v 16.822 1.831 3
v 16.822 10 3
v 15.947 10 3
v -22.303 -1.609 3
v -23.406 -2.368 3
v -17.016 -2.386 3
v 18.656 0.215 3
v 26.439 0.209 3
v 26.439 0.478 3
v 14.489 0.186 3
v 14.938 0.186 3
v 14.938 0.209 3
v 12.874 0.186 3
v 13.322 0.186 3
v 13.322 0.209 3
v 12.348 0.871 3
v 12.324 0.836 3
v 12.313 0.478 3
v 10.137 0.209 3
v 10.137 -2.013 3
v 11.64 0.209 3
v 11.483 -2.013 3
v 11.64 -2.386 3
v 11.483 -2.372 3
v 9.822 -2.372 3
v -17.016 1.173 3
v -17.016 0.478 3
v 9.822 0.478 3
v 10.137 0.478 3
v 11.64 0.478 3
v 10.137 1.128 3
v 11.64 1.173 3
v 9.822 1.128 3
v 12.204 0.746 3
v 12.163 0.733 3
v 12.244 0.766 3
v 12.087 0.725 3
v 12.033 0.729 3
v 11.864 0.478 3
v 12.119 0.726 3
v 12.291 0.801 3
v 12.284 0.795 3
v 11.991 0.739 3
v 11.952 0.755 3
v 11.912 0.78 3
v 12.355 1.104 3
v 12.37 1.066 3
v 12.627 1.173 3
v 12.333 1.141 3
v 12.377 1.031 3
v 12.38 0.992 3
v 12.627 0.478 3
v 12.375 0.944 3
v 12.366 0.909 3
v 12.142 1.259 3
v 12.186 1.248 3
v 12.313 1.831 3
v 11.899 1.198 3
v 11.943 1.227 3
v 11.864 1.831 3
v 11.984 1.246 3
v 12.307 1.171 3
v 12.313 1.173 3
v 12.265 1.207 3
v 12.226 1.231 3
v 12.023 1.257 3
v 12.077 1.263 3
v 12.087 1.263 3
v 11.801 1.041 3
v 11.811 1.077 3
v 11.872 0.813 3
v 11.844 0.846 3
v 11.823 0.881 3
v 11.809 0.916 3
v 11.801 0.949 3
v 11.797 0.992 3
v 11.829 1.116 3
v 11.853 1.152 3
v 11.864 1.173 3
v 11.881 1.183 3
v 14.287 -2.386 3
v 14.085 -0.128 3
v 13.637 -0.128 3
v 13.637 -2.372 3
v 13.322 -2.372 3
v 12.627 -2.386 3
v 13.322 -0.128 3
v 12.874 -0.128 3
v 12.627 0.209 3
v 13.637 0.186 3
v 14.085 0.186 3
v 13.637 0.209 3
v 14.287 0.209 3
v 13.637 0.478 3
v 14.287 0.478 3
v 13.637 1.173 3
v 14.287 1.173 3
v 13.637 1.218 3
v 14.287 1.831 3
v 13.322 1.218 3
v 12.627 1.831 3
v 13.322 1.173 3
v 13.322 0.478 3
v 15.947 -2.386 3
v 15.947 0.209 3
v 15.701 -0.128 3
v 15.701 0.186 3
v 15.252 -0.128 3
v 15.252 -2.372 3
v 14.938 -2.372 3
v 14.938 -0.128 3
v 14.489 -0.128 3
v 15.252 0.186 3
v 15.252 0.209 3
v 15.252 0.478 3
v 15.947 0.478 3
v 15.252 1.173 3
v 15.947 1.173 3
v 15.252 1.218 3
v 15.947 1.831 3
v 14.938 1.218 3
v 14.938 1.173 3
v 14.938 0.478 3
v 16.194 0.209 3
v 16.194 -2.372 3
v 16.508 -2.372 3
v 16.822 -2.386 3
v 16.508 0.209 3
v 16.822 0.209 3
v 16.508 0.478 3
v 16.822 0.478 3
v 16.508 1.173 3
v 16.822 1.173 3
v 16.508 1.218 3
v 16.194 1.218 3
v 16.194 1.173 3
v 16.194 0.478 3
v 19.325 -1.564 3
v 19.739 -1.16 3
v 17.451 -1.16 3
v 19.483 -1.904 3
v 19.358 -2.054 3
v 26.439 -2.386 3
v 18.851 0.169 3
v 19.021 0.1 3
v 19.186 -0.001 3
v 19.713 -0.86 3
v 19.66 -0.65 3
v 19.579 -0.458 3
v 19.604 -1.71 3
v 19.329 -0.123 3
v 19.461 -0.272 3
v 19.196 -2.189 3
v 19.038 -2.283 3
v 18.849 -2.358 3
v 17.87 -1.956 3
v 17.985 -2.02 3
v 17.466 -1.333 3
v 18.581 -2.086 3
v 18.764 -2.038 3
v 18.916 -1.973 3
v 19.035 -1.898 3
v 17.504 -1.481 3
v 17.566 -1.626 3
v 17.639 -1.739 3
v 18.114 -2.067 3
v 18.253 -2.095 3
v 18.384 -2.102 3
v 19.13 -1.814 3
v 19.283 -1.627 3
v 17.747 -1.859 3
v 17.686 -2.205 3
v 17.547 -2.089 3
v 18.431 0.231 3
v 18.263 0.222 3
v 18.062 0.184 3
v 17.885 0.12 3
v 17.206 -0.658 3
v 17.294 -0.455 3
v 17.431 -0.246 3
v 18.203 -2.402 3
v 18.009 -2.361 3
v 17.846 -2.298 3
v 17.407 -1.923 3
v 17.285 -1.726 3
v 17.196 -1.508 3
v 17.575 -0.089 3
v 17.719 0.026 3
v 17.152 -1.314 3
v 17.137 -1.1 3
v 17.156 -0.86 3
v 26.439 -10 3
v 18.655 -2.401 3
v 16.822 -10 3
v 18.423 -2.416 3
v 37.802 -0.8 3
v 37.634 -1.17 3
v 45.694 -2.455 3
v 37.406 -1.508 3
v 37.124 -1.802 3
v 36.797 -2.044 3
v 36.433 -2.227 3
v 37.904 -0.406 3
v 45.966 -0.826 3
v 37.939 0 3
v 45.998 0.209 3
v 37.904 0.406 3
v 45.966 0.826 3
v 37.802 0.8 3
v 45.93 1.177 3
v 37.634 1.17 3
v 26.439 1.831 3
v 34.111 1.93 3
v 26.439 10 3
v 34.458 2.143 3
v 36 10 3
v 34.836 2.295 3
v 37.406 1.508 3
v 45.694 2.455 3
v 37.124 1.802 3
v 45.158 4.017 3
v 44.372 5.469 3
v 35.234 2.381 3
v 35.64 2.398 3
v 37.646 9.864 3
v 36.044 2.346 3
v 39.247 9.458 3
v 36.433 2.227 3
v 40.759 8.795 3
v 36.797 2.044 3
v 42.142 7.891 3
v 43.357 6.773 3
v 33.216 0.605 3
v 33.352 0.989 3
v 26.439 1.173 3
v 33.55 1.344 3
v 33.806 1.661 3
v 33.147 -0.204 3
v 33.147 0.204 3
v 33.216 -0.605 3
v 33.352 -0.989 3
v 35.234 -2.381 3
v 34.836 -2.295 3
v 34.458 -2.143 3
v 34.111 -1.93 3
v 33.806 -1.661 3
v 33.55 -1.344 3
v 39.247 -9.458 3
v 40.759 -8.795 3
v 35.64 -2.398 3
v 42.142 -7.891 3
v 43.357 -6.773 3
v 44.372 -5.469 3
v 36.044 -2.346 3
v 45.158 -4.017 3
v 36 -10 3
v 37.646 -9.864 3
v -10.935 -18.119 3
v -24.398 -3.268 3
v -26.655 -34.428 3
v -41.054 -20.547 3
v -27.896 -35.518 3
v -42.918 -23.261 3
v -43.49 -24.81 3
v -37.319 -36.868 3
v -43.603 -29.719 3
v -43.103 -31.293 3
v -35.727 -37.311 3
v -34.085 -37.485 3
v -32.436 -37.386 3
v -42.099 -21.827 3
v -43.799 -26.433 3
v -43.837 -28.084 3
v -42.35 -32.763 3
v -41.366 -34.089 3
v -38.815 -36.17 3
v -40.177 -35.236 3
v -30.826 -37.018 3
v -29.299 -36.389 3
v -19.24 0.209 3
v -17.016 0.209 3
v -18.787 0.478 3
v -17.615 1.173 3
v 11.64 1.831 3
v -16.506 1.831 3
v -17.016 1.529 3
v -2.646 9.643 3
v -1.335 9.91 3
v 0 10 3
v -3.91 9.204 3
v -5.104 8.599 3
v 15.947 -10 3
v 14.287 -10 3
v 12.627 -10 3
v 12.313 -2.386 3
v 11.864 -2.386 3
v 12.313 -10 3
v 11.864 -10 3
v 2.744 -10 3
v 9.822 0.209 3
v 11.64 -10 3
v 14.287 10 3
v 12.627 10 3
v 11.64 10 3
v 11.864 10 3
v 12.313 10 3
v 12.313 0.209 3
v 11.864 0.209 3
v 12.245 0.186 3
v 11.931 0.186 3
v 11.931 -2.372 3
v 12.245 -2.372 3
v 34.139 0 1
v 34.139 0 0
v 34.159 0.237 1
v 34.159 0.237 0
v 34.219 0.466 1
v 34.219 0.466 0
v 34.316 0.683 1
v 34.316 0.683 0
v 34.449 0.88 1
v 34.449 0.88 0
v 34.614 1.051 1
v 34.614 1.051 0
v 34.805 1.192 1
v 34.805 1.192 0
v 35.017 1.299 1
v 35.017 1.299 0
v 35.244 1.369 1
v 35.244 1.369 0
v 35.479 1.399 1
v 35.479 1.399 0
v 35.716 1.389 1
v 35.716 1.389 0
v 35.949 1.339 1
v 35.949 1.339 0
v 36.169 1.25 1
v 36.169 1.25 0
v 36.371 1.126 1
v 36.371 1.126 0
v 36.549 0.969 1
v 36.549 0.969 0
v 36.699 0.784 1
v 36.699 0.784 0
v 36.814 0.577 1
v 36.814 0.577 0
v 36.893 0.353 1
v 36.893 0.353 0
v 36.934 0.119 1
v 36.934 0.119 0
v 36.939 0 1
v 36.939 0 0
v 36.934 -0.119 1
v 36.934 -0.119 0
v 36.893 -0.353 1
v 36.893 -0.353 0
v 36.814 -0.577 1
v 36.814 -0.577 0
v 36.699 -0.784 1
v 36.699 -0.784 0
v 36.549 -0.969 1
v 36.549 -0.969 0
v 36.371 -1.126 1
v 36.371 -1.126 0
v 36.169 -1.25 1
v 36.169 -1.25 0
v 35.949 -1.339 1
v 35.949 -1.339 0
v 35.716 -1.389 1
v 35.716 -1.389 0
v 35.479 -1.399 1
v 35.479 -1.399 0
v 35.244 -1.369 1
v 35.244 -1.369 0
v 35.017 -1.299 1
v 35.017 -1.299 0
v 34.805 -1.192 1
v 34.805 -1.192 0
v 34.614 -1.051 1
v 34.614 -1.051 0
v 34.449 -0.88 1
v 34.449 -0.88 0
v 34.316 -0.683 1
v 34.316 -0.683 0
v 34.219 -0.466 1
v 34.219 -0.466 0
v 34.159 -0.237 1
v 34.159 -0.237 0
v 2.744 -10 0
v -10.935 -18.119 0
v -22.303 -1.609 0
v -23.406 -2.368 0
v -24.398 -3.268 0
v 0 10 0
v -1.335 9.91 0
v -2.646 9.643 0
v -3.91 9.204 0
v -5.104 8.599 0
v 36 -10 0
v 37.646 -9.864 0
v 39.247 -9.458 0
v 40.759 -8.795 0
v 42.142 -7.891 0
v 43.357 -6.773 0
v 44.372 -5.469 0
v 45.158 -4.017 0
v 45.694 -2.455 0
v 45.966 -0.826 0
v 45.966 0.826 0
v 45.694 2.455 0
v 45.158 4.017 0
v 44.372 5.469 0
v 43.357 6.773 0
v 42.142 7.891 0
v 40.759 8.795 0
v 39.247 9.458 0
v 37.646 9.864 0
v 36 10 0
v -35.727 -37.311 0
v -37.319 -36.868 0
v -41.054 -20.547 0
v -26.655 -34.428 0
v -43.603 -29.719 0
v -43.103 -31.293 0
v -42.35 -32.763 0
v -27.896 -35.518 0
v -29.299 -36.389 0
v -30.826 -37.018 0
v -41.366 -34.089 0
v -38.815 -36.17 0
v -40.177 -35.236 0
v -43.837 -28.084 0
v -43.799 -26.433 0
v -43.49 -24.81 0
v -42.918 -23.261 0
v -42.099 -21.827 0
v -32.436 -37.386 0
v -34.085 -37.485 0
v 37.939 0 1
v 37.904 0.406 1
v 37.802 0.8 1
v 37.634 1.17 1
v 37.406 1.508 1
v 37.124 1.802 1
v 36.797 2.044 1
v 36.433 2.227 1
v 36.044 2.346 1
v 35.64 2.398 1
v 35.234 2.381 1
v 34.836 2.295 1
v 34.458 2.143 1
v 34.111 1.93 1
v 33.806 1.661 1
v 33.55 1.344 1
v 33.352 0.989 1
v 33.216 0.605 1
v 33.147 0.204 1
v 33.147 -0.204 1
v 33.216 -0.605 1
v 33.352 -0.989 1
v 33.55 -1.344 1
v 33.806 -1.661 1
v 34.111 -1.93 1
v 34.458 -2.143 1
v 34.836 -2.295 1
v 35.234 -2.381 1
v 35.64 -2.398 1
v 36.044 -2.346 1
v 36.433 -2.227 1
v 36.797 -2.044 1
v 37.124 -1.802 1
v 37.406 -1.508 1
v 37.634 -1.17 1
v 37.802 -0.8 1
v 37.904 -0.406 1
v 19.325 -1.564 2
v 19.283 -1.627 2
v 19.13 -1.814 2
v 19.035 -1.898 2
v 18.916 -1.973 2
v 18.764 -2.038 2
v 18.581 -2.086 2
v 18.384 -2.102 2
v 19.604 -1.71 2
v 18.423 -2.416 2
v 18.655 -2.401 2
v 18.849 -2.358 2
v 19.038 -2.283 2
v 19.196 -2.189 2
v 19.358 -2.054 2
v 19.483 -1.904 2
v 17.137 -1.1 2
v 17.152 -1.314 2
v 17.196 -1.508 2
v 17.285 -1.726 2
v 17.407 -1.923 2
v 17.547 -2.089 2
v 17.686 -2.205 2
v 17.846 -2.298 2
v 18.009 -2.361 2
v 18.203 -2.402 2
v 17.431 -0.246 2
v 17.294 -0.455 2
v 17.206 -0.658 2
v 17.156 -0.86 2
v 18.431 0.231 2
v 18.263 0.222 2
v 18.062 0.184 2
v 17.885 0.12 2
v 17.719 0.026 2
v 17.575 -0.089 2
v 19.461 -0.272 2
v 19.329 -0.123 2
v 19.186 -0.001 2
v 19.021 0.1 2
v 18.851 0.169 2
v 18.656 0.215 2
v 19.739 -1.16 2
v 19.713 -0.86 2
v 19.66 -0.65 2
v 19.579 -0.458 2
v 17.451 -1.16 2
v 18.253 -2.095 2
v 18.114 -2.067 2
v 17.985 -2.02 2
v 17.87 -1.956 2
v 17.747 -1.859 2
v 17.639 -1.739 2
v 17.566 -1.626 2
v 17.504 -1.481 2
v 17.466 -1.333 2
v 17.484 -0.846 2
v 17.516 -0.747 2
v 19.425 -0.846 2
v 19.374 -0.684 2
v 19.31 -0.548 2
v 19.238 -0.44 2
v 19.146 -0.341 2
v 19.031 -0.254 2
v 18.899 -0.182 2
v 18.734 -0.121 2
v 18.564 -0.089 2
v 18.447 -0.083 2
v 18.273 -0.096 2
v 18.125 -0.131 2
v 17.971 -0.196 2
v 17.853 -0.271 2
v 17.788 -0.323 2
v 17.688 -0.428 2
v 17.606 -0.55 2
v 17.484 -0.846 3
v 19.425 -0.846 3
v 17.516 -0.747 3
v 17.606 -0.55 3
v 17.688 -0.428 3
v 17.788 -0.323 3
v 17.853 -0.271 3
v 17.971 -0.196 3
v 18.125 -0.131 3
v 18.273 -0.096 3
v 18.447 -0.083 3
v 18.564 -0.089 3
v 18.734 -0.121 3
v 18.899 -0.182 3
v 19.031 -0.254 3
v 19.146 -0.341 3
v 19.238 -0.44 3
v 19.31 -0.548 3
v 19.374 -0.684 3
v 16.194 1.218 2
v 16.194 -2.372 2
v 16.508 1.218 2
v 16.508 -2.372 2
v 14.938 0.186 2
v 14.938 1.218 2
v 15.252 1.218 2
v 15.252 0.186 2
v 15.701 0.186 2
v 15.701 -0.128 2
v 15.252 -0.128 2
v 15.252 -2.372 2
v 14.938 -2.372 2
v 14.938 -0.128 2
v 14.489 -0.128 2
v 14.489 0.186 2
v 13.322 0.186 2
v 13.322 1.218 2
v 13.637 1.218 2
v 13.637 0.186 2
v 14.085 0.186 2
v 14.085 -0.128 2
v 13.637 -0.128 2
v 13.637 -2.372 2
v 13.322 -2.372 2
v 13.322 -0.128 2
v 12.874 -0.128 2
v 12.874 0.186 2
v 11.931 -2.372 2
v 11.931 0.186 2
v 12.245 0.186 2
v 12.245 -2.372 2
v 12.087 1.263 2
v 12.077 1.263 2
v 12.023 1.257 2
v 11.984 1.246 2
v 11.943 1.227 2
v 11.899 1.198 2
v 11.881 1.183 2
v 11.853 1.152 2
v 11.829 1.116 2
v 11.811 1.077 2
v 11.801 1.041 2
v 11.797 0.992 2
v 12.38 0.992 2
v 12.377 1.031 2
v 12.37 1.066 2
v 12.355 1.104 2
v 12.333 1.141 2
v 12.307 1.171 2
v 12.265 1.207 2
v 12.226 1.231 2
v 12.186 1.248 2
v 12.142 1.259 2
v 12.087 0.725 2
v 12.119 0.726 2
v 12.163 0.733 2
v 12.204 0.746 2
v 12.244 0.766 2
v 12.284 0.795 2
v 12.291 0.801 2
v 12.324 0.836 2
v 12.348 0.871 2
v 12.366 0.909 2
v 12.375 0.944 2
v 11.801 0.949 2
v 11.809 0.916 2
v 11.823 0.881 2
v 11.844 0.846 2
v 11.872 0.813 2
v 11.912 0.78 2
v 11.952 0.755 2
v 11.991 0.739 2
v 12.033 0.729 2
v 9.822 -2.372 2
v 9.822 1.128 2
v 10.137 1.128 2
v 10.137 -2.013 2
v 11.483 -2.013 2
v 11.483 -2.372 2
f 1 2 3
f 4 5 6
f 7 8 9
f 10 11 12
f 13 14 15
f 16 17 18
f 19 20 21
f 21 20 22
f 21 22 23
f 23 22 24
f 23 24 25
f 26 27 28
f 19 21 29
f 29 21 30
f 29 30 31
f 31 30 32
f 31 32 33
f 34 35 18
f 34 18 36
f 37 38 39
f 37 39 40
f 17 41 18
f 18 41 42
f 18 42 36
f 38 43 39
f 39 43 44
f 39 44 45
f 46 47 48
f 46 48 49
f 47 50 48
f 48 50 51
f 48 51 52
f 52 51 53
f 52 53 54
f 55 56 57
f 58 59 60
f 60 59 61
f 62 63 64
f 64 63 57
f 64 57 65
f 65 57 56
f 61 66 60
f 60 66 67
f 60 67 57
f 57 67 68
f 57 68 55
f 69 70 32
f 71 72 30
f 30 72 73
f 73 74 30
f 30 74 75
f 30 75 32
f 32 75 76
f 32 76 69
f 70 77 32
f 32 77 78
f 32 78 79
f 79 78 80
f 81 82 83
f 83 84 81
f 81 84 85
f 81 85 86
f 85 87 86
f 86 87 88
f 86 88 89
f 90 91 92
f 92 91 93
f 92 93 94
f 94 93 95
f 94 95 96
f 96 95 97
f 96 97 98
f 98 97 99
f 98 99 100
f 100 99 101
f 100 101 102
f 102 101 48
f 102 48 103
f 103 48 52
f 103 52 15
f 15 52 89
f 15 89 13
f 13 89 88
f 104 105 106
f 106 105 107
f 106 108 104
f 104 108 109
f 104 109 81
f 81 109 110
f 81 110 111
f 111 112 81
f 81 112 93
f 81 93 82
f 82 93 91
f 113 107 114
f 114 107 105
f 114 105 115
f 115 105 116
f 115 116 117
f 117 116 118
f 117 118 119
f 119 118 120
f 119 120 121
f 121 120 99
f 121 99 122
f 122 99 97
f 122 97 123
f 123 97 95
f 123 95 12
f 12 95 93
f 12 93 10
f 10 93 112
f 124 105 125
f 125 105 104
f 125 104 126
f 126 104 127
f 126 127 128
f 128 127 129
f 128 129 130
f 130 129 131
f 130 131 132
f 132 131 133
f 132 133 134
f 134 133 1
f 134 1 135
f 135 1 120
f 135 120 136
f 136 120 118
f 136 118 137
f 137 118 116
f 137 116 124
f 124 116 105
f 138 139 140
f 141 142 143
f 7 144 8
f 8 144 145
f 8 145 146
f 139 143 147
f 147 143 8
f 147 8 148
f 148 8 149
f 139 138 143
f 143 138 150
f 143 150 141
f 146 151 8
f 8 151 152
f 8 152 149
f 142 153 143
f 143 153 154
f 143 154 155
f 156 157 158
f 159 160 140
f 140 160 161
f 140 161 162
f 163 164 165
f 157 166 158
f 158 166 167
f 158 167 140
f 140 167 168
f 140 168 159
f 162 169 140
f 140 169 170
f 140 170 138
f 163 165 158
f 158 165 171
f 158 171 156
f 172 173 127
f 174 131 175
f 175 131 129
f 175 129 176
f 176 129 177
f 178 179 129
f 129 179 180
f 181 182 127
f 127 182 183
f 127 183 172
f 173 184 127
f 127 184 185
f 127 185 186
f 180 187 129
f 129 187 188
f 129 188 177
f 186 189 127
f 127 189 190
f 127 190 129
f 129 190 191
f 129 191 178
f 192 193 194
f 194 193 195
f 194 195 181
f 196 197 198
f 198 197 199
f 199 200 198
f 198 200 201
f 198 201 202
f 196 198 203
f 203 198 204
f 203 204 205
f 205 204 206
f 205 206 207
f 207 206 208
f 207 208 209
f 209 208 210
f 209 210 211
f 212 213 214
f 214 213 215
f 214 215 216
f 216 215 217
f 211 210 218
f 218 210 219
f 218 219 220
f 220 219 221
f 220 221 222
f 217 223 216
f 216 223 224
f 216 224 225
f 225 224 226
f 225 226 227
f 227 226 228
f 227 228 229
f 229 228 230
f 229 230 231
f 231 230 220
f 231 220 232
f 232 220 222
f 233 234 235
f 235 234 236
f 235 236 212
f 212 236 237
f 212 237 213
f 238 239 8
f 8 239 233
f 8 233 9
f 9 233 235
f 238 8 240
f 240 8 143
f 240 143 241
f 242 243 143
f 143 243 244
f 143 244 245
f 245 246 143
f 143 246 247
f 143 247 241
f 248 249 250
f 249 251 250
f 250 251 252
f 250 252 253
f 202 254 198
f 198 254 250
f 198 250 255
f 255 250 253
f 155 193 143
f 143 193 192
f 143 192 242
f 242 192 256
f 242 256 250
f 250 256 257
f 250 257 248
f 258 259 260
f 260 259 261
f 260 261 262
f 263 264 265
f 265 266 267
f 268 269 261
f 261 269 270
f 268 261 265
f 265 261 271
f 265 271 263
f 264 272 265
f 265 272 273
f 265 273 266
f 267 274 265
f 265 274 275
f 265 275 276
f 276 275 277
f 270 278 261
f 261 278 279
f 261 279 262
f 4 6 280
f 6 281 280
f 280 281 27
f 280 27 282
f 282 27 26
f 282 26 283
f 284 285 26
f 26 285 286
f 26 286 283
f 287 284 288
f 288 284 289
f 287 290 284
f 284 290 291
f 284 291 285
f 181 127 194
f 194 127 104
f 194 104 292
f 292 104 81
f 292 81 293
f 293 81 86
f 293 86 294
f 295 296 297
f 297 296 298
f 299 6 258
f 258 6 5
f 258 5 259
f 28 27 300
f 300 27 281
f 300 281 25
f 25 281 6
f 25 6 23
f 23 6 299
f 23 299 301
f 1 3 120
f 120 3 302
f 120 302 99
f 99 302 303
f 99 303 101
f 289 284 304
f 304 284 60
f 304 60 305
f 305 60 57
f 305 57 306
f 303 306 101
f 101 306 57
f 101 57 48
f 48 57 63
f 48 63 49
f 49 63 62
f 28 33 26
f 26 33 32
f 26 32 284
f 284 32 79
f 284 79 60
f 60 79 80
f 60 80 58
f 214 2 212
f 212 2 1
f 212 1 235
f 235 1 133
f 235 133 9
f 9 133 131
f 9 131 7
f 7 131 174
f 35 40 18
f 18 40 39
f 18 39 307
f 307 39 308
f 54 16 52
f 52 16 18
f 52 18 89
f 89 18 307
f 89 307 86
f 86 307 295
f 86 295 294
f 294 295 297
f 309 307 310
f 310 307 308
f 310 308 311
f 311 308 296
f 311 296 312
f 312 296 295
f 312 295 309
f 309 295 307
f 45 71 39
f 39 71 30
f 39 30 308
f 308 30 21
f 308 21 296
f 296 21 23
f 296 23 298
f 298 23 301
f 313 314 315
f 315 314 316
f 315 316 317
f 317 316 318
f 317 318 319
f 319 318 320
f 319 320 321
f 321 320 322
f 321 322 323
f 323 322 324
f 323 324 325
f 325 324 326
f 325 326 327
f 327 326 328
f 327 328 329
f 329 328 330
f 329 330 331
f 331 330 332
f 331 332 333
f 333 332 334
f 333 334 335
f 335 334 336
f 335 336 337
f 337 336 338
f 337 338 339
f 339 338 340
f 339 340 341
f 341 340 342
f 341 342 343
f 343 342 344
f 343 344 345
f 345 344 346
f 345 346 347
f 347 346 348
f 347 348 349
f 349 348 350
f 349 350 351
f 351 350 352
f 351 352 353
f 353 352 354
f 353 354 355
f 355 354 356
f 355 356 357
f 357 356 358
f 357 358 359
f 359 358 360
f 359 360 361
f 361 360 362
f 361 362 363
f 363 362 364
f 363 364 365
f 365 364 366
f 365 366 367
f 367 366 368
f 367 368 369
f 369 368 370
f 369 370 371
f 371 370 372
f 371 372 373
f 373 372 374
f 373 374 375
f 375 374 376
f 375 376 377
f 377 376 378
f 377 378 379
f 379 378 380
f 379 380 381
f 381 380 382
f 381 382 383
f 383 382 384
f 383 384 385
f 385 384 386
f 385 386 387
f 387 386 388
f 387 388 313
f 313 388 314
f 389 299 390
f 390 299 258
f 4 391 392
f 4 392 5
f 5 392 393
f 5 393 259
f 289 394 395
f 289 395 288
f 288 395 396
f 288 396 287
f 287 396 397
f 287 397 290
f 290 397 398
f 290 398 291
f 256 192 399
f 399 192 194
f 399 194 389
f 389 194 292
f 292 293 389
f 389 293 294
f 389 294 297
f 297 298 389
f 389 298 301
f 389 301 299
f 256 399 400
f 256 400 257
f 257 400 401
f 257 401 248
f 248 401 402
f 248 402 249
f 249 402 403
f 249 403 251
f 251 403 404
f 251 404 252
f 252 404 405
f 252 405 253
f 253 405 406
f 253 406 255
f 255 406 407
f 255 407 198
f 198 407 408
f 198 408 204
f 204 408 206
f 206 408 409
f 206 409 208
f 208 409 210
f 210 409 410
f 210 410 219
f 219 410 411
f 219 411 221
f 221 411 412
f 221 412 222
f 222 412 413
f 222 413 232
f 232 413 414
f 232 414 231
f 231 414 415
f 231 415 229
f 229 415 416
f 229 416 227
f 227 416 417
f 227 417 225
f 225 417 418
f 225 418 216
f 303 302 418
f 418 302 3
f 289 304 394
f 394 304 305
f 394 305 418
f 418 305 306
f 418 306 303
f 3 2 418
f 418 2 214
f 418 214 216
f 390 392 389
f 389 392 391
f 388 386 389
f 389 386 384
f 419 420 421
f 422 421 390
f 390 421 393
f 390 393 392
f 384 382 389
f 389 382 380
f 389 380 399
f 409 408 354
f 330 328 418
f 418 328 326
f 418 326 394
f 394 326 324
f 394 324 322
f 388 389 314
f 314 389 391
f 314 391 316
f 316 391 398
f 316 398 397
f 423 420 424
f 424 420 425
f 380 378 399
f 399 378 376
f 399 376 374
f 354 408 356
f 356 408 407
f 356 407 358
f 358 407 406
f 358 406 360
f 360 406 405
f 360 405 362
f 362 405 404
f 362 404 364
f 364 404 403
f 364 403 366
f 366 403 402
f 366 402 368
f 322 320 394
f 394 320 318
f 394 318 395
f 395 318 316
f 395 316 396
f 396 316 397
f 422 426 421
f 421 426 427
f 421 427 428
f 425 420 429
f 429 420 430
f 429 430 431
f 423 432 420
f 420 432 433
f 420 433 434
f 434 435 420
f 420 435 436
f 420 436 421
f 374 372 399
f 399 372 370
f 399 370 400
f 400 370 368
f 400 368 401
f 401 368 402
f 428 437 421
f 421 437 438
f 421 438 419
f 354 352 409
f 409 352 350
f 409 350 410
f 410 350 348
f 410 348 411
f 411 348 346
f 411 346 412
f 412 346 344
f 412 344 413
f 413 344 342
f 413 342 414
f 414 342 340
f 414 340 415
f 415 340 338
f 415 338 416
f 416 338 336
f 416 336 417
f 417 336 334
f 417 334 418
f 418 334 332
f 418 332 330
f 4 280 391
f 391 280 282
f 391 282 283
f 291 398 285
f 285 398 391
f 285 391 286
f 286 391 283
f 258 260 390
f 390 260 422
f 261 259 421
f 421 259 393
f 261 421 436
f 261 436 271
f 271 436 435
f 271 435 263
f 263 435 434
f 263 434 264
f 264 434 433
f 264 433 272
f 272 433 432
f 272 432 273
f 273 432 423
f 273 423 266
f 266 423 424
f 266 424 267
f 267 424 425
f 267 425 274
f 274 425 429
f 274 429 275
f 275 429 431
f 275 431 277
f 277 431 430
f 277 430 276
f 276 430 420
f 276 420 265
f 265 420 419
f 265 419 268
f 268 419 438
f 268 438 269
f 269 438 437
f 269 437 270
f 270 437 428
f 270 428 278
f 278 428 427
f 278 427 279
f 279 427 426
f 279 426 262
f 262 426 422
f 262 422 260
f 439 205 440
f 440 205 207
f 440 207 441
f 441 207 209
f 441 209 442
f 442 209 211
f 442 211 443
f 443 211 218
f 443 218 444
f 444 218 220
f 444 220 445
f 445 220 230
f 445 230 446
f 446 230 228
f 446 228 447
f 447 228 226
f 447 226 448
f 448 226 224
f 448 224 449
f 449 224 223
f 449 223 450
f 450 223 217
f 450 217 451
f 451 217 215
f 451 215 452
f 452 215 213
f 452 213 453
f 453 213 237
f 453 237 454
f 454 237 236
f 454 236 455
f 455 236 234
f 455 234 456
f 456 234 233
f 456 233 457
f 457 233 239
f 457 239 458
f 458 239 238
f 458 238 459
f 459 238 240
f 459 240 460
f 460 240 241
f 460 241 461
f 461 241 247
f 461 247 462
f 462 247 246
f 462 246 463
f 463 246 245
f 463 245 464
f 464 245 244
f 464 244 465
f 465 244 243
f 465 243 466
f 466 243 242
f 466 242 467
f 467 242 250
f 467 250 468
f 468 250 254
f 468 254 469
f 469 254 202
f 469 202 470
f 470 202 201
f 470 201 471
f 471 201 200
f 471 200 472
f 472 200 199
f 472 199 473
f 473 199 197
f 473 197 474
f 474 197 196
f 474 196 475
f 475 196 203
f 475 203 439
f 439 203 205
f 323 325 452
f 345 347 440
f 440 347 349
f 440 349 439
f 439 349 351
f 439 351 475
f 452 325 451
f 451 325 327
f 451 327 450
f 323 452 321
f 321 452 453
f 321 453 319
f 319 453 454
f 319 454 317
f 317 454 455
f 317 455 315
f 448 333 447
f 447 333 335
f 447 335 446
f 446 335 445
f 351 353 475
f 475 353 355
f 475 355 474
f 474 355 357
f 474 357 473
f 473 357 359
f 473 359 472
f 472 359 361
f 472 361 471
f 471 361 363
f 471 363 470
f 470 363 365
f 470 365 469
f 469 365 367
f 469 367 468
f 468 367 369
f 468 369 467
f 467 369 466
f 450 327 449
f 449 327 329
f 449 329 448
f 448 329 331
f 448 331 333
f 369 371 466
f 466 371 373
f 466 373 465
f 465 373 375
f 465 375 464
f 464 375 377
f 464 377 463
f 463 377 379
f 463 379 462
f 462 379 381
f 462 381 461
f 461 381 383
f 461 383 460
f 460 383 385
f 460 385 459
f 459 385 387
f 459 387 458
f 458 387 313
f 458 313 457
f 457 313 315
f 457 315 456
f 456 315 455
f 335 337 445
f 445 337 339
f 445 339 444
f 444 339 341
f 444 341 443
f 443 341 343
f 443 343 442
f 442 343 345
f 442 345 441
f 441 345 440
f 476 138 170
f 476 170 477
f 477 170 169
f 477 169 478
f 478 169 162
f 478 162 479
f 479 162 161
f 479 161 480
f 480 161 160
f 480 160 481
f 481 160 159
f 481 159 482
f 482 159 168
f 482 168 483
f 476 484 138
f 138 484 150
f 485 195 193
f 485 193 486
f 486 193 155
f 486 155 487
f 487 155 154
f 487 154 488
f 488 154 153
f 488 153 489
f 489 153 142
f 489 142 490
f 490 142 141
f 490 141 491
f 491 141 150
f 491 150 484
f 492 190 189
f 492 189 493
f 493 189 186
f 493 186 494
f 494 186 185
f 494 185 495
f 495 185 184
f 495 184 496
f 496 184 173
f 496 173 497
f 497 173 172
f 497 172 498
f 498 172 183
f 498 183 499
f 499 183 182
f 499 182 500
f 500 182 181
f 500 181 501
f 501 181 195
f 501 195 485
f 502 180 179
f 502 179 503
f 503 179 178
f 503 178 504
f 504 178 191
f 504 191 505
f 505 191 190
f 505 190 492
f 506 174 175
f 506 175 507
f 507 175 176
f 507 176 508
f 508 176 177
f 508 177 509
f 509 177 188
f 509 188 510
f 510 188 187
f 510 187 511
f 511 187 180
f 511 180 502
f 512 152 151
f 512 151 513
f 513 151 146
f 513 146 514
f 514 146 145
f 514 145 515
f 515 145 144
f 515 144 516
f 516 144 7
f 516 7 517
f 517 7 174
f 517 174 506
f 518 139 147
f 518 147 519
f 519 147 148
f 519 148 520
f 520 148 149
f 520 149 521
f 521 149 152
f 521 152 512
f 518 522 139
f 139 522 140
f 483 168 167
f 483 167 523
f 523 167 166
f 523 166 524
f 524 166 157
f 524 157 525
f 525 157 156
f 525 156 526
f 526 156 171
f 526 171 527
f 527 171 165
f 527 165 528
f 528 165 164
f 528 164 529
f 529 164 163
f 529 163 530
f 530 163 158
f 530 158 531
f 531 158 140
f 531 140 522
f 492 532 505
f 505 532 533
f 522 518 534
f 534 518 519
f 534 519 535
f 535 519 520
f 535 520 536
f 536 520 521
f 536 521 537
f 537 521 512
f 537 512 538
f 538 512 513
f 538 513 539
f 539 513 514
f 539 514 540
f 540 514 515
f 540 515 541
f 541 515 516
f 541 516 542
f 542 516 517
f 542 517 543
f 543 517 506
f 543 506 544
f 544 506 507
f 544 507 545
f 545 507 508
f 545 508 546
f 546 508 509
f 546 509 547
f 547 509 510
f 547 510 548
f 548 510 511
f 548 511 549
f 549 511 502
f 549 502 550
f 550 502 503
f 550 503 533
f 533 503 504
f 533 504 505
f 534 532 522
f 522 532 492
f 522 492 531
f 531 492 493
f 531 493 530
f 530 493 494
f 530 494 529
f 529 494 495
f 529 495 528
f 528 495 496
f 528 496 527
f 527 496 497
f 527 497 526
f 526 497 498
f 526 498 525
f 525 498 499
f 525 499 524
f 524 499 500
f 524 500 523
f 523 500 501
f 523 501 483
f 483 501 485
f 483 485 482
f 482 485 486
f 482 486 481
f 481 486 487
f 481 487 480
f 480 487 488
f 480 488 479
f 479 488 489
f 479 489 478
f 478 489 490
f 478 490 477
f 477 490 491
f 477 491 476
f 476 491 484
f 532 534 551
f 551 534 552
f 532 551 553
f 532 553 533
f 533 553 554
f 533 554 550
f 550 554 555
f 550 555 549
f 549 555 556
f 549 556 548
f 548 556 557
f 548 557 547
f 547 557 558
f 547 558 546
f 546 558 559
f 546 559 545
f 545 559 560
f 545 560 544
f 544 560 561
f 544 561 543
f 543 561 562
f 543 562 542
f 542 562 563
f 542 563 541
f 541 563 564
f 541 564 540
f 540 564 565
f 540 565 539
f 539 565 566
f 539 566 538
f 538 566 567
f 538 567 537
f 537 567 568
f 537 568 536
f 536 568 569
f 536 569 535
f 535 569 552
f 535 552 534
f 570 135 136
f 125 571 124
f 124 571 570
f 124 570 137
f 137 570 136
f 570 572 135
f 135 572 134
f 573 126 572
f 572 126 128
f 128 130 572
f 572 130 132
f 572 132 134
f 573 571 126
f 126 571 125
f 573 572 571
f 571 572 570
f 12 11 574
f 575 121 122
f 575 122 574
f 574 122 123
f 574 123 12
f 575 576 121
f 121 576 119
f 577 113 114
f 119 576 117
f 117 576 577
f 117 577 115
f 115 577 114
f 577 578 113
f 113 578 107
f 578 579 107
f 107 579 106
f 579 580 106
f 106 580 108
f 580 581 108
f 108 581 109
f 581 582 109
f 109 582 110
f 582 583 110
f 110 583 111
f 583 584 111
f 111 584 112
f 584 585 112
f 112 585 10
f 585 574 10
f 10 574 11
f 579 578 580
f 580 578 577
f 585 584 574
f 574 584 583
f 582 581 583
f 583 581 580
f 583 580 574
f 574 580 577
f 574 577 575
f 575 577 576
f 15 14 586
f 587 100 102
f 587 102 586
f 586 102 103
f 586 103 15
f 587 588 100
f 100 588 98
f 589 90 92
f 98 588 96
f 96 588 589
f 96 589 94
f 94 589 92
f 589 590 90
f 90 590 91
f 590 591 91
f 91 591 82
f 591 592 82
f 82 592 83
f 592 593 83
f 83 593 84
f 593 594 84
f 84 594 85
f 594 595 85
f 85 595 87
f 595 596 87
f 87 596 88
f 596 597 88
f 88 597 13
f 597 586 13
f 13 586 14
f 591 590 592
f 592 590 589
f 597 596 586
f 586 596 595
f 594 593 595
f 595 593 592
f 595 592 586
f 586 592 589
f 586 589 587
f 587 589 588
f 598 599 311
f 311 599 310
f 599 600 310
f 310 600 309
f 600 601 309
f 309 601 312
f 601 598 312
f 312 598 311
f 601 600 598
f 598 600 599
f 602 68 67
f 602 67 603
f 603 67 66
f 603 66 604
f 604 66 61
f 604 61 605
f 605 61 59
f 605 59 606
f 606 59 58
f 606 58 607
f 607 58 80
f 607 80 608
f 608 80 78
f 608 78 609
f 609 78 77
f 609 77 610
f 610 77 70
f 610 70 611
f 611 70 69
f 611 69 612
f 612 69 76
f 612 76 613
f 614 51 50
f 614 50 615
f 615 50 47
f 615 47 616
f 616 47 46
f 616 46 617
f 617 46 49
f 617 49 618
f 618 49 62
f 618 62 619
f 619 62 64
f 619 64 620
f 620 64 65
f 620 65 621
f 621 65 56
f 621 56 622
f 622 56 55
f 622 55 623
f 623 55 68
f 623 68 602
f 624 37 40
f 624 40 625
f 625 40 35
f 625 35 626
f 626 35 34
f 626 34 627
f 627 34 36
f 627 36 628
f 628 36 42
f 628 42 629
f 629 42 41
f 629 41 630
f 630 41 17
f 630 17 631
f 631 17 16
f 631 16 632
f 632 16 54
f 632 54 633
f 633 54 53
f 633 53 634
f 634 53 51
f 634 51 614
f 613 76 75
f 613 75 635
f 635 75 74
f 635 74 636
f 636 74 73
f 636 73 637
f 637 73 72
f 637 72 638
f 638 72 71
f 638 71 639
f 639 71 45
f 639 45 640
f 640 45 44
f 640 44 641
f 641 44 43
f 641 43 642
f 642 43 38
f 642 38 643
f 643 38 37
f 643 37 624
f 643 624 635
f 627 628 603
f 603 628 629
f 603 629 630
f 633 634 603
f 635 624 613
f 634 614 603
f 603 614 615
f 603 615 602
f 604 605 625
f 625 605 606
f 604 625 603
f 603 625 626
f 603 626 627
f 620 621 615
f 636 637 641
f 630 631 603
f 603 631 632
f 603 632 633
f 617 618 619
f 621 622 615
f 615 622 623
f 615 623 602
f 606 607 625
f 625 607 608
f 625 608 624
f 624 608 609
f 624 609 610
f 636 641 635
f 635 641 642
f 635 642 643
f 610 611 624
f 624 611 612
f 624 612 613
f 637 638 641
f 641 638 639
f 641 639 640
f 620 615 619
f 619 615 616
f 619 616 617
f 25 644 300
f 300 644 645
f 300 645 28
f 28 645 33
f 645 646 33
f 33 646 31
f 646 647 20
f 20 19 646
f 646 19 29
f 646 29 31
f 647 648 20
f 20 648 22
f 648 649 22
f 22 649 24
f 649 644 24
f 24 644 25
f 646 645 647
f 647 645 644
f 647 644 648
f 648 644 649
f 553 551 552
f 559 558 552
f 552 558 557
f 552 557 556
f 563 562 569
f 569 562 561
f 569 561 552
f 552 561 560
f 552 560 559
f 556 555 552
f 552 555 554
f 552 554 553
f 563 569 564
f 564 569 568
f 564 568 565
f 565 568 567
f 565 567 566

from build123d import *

# Parameters (mm, degrees)
BOSS_EXTRUDE1_DEPTH = 3
BOSS_EXTRUDE2_DEPTH = 3
BOSS_EXTRUDE4_DEPTH = 3
SKETCH4_R           = 1.4
CUT_EXTRUDE5_DEPTH  = 3
SKETCH5_R           = 2.4
CUT_EXTRUDE6_DEPTH  = 2
SKETCH6_W           = 0.314102564
SKETCH6_H           = 2.557692308
SKETCH6_W_2         = 0.314102565
SKETCH6_H_2         = 3.58974359
CUT_EXTRUDE7_DEPTH  = 1


with BuildPart() as part:
    # Sketch1 → Boss-Extrude1 (new body)
    with BuildSketch(Plane.XY):
        with BuildLine():
            Line((0, 10), (36, 10))
            ThreePointArc((36, 10), (46, 0), (36, -10))
            Line((36, -10), (0, -10))
            ThreePointArc((0, -10), (-10, 0), (0, 10))
        make_face()
    extrude(amount=BOSS_EXTRUDE1_DEPTH)

    # Sketch2 → Boss-Extrude2 (add)
    with BuildSketch(Plane.XY):
        with BuildLine():
            Line((5.104260767, -8.599216361), (-12.094171954, -18.807737895))
            ThreePointArc((-12.094171954, -18.807737895), (-25.797649082, -15.312782302), (-22.302693489, -1.609305174))
            Line((-22.302693489, -1.609305174), (-5.104260767, 8.599216361))
            ThreePointArc((-5.104260767, 8.599216361), (8.599216361, 5.104260767), (5.104260767, -8.599216361))
        make_face()
    extrude(amount=BOSS_EXTRUDE2_DEPTH)

    # Sketch3 → Boss-Extrude4 (add)
    with BuildSketch(Plane.XY):
        with BuildLine():
            Line((-9.998884105, -17.148730445), (-26.65538549, -34.427647124))
            ThreePointArc((-26.65538549, -34.427647124), (-40.795143017, -34.68698683), (-41.054482723, -20.547229303))
            Line((-41.054482723, -20.547229303), (-24.397981338, -3.268312624))
            ThreePointArc((-24.397981338, -3.268312624), (-10.258223811, -3.008972918), (-9.998884105, -17.148730445))
        make_face()
    extrude(amount=BOSS_EXTRUDE4_DEPTH)

    # Sketch4 → Cut-Extrude5 (cut)
    with BuildSketch(Plane.XY):
        with Locations((35.538598823, 0)):
            Circle(SKETCH4_R)
    extrude(amount=CUT_EXTRUDE5_DEPTH, mode=Mode.SUBTRACT)

    # Sketch5 → Cut-Extrude6 (cut)
    with BuildSketch(Plane.XY.offset(3)):
        with Locations((35.538598823, 0)):
            Circle(SKETCH5_R)
    extrude(amount=-CUT_EXTRUDE6_DEPTH, mode=Mode.SUBTRACT)

    # Sketch6 → Cut-Extrude7 (cut)
    # profile 1 of 7: a face of its own
    with BuildSketch(Plane.XY.offset(3)):
        Polygon((9.822398538, 1.128373328), (10.136501102, 1.128373328), (10.136501102, -2.012652313), (11.482654948, -2.012652313), (11.482654948, -2.371626672), (9.822398538, -2.371626672), align=None)
    # profile 2 of 7: a face of its own
    with BuildSketch(Plane.XY.offset(3)):
        with BuildLine():
            add(Edge.make_bspline(
                [(12.087021935, 1.262988713), (12.106513251, 1.26208456), (12.144680991, 1.260314056), (12.199874258, 1.245152579), (12.250131271, 1.219452894), (12.294709003, 1.184973213), (12.33296089, 1.144423769), (12.3597416, 1.097162801), (12.376953997, 1.046104162), (12.379032552, 1.010489073), (12.380090845, 0.9923557)],
                knots=[0, 0, 0, 0, 1.055194115, 2.066272739, 3.074728998, 4.095836921, 5.109056067, 6.073838105, 7.019297344, 8, 8, 8, 8], degree=3))
            add(Edge.make_bspline(
                [(12.380090845, 0.9923557), (12.379008686, 0.974693047), (12.376869384, 0.939776072), (12.359754895, 0.889602599), (12.332732658, 0.842998316), (12.294733532, 0.802527606), (12.250124771, 0.768066986), (12.199875985, 0.742362247), (12.144680537, 0.72720211), (12.106513097, 0.725431421), (12.087021935, 0.724527174)],
                knots=[0, 0, 0, 0, 0.96129708, 1.900370562, 2.859976407, 3.87933698, 4.906634145, 5.921202961, 6.938410037, 8, 8, 8, 8], degree=3))
            add(Edge.make_bspline(
                [(12.087021935, 0.724527174), (12.06775366, 0.725396894), (12.03025048, 0.727089691), (11.975883637, 0.742659709), (11.926055148, 0.768075782), (11.881390475, 0.802301967), (11.844160282, 0.843246864), (11.817061957, 0.889574158), (11.799986995, 0.939783313), (11.797842366, 0.974695479), (11.796757512, 0.9923557)],
                knots=[0, 0, 0, 0, 1.054934014, 2.053291228, 3.073705704, 4.106921865, 5.123545215, 6.088680038, 7.033164197, 8, 8, 8, 8], degree=3))
            add(Edge.make_bspline(
                [(11.796757512, 0.9923557), (11.797818599, 1.010486549), (11.79990264, 1.046096682), (11.817074756, 1.097191715), (11.843934564, 1.144173217), (11.881415127, 1.185198716), (11.926048587, 1.219444151), (11.975885333, 1.244855132), (12.030250032, 1.260426472), (12.067753508, 1.262119086), (12.087021935, 1.262988713)],
                knots=[0, 0, 0, 0, 0.98631895, 1.937192651, 2.907499808, 3.917963147, 4.944918757, 5.95915025, 6.951458133, 8, 8, 8, 8], degree=3))
        make_face()
    # profile 3 of 7: a face of its own
    with BuildSketch(Plane.XY.offset(3)):
        with Locations((12.088424179, -1.092780518)):
            Rectangle(SKETCH6_W, SKETCH6_H)
    # profile 4 of 7: a face of its own
    with BuildSketch(Plane.XY.offset(3)):
        Polygon((13.322398538, 1.218116918), (13.636501102, 1.218116918), (13.636501102, 0.186065636), (14.085219051, 0.186065636), (14.085219051, -0.128036928), (13.636501102, -0.128036928), (13.636501102, -2.371626672), (13.322398538, -2.371626672), (13.322398538, -0.128036928), (12.873680589, -0.128036928), (12.873680589, 0.186065636), (13.322398538, 0.186065636), align=None)
    # profile 5 of 7: a face of its own
    with BuildSketch(Plane.XY.offset(3)):
        Polygon((14.937783153, 1.218116918), (15.251885717, 1.218116918), (15.251885717, 0.186065636), (15.700603666, 0.186065636), (15.700603666, -0.128036928), (15.251885717, -0.128036928), (15.251885717, -2.371626672), (14.937783153, -2.371626672), (14.937783153, -0.128036928), (14.489065204, -0.128036928), (14.489065204, 0.186065636), (14.937783153, 0.186065636), align=None)
    # profile 6 of 7: a face of its own
    with BuildSketch(Plane.XY.offset(3)):
        with Locations((16.351244691, -0.576754877)):
            Rectangle(SKETCH6_W_2, SKETCH6_H_2)
    # profile 7 of 7: a face of its own
    with BuildSketch(Plane.XY.offset(3)):
        with BuildLine():
            Line((19.325403345, -1.563934364), (19.60444982, -1.71046882))
            add(Edge.make_bspline(
                [(19.60444982, -1.71046882), (19.582213225, -1.749912151), (19.538949616, -1.826653254), (19.464548868, -1.932085114), (19.386556796, -2.02693283), (19.301452828, -2.108662484), (19.211783149, -2.179913869), (19.117050494, -2.242251694), (19.016761676, -2.295370214), (18.910911951, -2.340122742), (18.7986124, -2.374532236), (18.679590884, -2.398836457), (18.553619388, -2.413859726), (18.467273209, -2.415604867), (18.423059595, -2.416498467)],
                knots=[0, 0, 0, 0, 1.120438281, 2.179929193, 3.190490725, 4.156257408, 5.095198341, 6.022838206, 6.959905092, 7.901321166, 8.864066838, 9.862729781, 10.905609505, 12, 12, 12, 12], degree=3))
            add(Edge.make_bspline(
                [(18.423059595, -2.416498467), (18.373917618, -2.415351292), (18.278055856, -2.413113485), (18.138516109, -2.39382102), (18.007136691, -2.362348662), (17.883924987, -2.31838312), (17.769182735, -2.260955796), (17.66268188, -2.190996314), (17.563862354, -2.10886406), (17.475838145, -2.013847616), (17.396594262, -1.912165659), (17.326668442, -1.806209774), (17.268211011, -1.69624655), (17.220658401, -1.582976026), (17.182253536, -1.467112132), (17.155486832, -1.347600665), (17.140057084, -1.224765081), (17.137692639, -1.141667745), (17.136501102, -1.099791736)],
                knots=[0, 0, 0, 0, 1.145258523, 2.234067595, 3.276747158, 4.290159414, 5.277019952, 6.260822364, 7.254936242, 8.264827045, 9.274100331, 10.257902744, 11.220704747, 12.172965371, 13.118907548, 14.062713208, 15.023725156, 16, 16, 16, 16], degree=3))
            add(Edge.make_bspline(
                [(17.136501102, -1.099791736), (17.137560243, -1.060496906), (17.139659321, -0.982619741), (17.152890109, -0.867354197), (17.176338402, -0.755325744), (17.208514726, -0.646441296), (17.250065972, -0.540883162), (17.300898191, -0.438587098), (17.361090569, -0.339661959), (17.407563243, -0.277258825), (17.430972256, -0.24582539)],
                knots=[0, 0, 0, 0, 1.024358464, 2.0301432, 3.019427413, 4.004406732, 4.986367066, 5.972626655, 6.978780325, 8, 8, 8, 8], degree=3))
            add(Edge.make_bspline(
                [(17.430972256, -0.24582539), (17.462679938, -0.20795652), (17.525090885, -0.133418369), (17.63064724, -0.035480044), (17.744947437, 0.046563731), (17.866559063, 0.114570868), (17.996895537, 0.166244515), (18.134204828, 0.204752097), (18.280050414, 0.226330108), (18.379755635, 0.229377941), (18.430771935, 0.23093743)],
                knots=[0, 0, 0, 0, 1.030682036, 2.02871468, 2.997146059, 3.962720338, 4.930598197, 5.918074684, 6.934738563, 8, 8, 8, 8], degree=3))
            add(Edge.make_bspline(
                [(18.430771935, 0.23093743), (18.48321954, 0.229583382), (18.586109786, 0.226927046), (18.736141907, 0.202300713), (18.878102624, 0.163248158), (19.011935128, 0.108094368), (19.137652989, 0.036934816), (19.254439039, -0.051207025), (19.364290551, -0.153625113), (19.42819913, -0.232388322), (19.460719852, -0.272468018)],
                knots=[0, 0, 0, 0, 1.056321875, 2.072262726, 3.055038591, 4.01806755, 4.982017516, 5.957941055, 6.960871419, 8, 8, 8, 8], degree=3))
            add(Edge.make_bspline(
                [(19.460719852, -0.272468018), (19.48284679, -0.3026716), (19.526953383, -0.362877718), (19.582200483, -0.461048875), (19.630157878, -0.56375947), (19.668490839, -0.672669767), (19.69953034, -0.786489347), (19.721987159, -0.906031892), (19.735156778, -1.031261803), (19.737745475, -1.116588359), (19.739065204, -1.160088211)],
                knots=[0, 0, 0, 0, 0.94817472, 1.890038105, 2.849395472, 3.817997239, 4.812318967, 5.836947057, 6.897266129, 8, 8, 8, 8], degree=3))
            Line((19.739065204, -1.160088211), (17.450603666, -1.160088211))
            add(Edge.make_bspline(
                [(17.450603666, -1.160088211), (17.452143272, -1.193788675), (17.455170846, -1.260059279), (17.469285989, -1.357030062), (17.491534763, -1.449403404), (17.522803826, -1.536486446), (17.560670671, -1.619416573), (17.607056388, -1.69757861), (17.662395942, -1.77061654), (17.724121641, -1.839183678), (17.792828737, -1.900244439), (17.865111484, -1.954896215), (17.942005049, -2.000701812), (18.022903132, -2.037881702), (18.107674917, -2.066988018), (18.196347113, -2.086855839), (18.288745229, -2.100162945), (18.351730963, -2.101642611), (18.383796775, -2.102395903)],
                knots=[0, 0, 0, 0, 1.094153842, 2.151609401, 3.174256925, 4.172055639, 5.149267565, 6.128595816, 7.11444997, 8.118368179, 9.117203808, 10.09244225, 11.054858984, 12.015122123, 12.976791628, 13.957293641, 14.960065497, 16, 16, 16, 16], degree=3))
            add(Edge.make_bspline(
                [(18.383796775, -2.102395903), (18.415147922, -2.101787846), (18.477354613, -2.100581345), (18.569995471, -2.088849434), (18.661134998, -2.069879159), (18.750395981, -2.043989169), (18.835966827, -2.012412316), (18.915212377, -1.974309459), (18.988092593, -1.932159712), (19.05620956, -1.883950037), (19.122280553, -1.82494185), (19.187823039, -1.751306129), (19.258099693, -1.664218601), (19.302089285, -1.598672935), (19.325403345, -1.563934364)],
                knots=[0, 0, 0, 0, 0.99110716, 1.966546729, 2.947904876, 3.932708344, 4.903319531, 5.828989031, 6.710028674, 7.56322171, 8.463672341, 9.504779593, 10.677557249, 12, 12, 12, 12], degree=3))
        make_face()
        with BuildLine():
            add(Edge.make_bspline(
                [(19.42496264, -0.845985646), (19.413466016, -0.804322773), (19.391338714, -0.724135152), (19.34510235, -0.613094262), (19.293030809, -0.514406361), (19.231409078, -0.428826728), (19.161590352, -0.352823215), (19.080945169, -0.286404629), (18.990509276, -0.226987178), (18.890750135, -0.176834679), (18.78510835, -0.13414482), (18.674502158, -0.105519704), (18.56164437, -0.085910162), (18.485310084, -0.084084054), (18.446897736, -0.083165134)],
                knots=[0, 0, 0, 0, 1.154881502, 2.222775134, 3.210006277, 4.132804581, 5.035138423, 5.962687519, 6.919655026, 7.923214229, 8.944639381, 9.960483929, 10.97369054, 12, 12, 12, 12], degree=3))
            add(Edge.make_bspline(
                [(18.446897736, -0.083165134), (18.415548298, -0.083776805), (18.353577049, -0.084985951), (18.262275981, -0.096456081), (18.174596282, -0.115415925), (18.089890994, -0.141380882), (18.009270126, -0.175989485), (17.931075358, -0.216572711), (17.857294961, -0.266114295), (17.811153666, -0.30387315), (17.787843249, -0.322948787)],
                knots=[0, 0, 0, 0, 1.04873581, 2.073130211, 3.073294108, 4.04793562, 5.032784715, 6.005352987, 6.992311501, 8, 8, 8, 8], degree=3))
            add(Edge.make_bspline(
                [(17.787843249, -0.322948787), (17.771149967, -0.338043103), (17.737366833, -0.368590319), (17.692226312, -0.421219526), (17.649005839, -0.477971088), (17.609672186, -0.541016212), (17.5735946, -0.609636991), (17.539834622, -0.683254627), (17.50944821, -0.762427757), (17.4923521, -0.817600196), (17.48355639, -0.845985646)],
                knots=[0, 0, 0, 0, 0.879870761, 1.780643979, 2.707998968, 3.669668524, 4.684282772, 5.740141944, 6.837334558, 8, 8, 8, 8], degree=3))
            Line((17.48355639, -0.845985646), (19.42496264, -0.845985646))
        make_face(mode=Mode.SUBTRACT)
    extrude(amount=-CUT_EXTRUDE7_DEPTH, mode=Mode.SUBTRACT)


solid = part.part
